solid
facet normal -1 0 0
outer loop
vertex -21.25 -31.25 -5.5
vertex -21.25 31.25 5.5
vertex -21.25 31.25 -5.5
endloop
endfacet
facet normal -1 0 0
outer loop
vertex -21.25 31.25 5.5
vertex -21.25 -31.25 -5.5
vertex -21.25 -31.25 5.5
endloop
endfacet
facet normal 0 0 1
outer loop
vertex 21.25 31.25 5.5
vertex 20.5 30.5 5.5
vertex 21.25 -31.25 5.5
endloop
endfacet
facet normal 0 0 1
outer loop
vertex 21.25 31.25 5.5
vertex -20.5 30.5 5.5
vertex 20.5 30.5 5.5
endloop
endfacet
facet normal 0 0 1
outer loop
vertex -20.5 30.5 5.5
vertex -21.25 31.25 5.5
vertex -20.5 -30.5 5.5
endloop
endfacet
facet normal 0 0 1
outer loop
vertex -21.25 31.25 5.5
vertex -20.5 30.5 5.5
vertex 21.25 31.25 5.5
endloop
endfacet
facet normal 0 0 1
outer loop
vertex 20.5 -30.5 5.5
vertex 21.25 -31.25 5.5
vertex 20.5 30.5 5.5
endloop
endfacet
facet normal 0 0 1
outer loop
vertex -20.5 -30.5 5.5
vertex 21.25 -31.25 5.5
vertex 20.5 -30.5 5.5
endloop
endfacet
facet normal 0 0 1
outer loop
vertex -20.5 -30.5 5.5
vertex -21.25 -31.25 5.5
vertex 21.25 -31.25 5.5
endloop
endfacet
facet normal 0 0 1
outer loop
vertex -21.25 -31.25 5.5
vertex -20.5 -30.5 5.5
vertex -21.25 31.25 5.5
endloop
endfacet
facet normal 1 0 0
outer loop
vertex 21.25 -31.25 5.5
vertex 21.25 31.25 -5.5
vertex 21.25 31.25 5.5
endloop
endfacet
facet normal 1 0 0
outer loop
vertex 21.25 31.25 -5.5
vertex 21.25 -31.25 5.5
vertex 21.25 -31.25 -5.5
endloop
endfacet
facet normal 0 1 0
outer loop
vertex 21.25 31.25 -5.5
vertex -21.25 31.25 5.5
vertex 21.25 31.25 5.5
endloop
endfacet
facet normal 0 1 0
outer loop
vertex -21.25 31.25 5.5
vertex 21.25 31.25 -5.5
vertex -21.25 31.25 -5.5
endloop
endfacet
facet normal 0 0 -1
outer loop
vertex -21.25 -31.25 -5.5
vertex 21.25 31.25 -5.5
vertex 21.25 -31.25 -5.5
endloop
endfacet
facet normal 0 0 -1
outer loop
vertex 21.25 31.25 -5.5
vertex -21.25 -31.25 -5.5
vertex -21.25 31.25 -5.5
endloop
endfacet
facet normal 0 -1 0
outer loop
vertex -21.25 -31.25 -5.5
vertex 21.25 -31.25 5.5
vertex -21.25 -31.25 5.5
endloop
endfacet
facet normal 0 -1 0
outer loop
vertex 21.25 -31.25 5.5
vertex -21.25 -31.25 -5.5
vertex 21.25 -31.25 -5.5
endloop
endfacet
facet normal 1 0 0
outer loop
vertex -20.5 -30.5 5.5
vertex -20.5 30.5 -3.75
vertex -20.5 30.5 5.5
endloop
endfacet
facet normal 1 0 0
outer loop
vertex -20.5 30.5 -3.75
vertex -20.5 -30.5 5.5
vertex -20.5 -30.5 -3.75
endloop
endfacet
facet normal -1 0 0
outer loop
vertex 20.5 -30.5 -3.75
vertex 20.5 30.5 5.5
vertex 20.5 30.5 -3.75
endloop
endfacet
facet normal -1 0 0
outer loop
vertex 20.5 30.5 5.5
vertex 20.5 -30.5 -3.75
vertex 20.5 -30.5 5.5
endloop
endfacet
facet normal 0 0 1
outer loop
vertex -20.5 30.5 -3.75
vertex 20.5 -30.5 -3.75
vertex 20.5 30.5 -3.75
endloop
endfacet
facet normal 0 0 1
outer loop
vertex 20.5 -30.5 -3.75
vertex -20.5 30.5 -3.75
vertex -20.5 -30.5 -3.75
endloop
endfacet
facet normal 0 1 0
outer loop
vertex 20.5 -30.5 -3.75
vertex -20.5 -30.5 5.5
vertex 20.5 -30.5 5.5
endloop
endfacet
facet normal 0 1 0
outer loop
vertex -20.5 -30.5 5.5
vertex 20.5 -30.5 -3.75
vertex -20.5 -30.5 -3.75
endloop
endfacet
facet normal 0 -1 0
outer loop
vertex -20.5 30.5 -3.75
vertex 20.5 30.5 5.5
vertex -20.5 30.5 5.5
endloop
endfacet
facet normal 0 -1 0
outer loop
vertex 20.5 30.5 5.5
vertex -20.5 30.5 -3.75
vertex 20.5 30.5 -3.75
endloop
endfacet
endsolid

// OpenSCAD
module BoxLid() {
    difference() {
       // Espessura da caixa
       cube([ 42.5, 62.5, 33/3], center = true); 
       // Interior
       translate([0,0,1.5]) cube([41, 61, 31.5/3], center = true);
    }     
}
BoxLid();
